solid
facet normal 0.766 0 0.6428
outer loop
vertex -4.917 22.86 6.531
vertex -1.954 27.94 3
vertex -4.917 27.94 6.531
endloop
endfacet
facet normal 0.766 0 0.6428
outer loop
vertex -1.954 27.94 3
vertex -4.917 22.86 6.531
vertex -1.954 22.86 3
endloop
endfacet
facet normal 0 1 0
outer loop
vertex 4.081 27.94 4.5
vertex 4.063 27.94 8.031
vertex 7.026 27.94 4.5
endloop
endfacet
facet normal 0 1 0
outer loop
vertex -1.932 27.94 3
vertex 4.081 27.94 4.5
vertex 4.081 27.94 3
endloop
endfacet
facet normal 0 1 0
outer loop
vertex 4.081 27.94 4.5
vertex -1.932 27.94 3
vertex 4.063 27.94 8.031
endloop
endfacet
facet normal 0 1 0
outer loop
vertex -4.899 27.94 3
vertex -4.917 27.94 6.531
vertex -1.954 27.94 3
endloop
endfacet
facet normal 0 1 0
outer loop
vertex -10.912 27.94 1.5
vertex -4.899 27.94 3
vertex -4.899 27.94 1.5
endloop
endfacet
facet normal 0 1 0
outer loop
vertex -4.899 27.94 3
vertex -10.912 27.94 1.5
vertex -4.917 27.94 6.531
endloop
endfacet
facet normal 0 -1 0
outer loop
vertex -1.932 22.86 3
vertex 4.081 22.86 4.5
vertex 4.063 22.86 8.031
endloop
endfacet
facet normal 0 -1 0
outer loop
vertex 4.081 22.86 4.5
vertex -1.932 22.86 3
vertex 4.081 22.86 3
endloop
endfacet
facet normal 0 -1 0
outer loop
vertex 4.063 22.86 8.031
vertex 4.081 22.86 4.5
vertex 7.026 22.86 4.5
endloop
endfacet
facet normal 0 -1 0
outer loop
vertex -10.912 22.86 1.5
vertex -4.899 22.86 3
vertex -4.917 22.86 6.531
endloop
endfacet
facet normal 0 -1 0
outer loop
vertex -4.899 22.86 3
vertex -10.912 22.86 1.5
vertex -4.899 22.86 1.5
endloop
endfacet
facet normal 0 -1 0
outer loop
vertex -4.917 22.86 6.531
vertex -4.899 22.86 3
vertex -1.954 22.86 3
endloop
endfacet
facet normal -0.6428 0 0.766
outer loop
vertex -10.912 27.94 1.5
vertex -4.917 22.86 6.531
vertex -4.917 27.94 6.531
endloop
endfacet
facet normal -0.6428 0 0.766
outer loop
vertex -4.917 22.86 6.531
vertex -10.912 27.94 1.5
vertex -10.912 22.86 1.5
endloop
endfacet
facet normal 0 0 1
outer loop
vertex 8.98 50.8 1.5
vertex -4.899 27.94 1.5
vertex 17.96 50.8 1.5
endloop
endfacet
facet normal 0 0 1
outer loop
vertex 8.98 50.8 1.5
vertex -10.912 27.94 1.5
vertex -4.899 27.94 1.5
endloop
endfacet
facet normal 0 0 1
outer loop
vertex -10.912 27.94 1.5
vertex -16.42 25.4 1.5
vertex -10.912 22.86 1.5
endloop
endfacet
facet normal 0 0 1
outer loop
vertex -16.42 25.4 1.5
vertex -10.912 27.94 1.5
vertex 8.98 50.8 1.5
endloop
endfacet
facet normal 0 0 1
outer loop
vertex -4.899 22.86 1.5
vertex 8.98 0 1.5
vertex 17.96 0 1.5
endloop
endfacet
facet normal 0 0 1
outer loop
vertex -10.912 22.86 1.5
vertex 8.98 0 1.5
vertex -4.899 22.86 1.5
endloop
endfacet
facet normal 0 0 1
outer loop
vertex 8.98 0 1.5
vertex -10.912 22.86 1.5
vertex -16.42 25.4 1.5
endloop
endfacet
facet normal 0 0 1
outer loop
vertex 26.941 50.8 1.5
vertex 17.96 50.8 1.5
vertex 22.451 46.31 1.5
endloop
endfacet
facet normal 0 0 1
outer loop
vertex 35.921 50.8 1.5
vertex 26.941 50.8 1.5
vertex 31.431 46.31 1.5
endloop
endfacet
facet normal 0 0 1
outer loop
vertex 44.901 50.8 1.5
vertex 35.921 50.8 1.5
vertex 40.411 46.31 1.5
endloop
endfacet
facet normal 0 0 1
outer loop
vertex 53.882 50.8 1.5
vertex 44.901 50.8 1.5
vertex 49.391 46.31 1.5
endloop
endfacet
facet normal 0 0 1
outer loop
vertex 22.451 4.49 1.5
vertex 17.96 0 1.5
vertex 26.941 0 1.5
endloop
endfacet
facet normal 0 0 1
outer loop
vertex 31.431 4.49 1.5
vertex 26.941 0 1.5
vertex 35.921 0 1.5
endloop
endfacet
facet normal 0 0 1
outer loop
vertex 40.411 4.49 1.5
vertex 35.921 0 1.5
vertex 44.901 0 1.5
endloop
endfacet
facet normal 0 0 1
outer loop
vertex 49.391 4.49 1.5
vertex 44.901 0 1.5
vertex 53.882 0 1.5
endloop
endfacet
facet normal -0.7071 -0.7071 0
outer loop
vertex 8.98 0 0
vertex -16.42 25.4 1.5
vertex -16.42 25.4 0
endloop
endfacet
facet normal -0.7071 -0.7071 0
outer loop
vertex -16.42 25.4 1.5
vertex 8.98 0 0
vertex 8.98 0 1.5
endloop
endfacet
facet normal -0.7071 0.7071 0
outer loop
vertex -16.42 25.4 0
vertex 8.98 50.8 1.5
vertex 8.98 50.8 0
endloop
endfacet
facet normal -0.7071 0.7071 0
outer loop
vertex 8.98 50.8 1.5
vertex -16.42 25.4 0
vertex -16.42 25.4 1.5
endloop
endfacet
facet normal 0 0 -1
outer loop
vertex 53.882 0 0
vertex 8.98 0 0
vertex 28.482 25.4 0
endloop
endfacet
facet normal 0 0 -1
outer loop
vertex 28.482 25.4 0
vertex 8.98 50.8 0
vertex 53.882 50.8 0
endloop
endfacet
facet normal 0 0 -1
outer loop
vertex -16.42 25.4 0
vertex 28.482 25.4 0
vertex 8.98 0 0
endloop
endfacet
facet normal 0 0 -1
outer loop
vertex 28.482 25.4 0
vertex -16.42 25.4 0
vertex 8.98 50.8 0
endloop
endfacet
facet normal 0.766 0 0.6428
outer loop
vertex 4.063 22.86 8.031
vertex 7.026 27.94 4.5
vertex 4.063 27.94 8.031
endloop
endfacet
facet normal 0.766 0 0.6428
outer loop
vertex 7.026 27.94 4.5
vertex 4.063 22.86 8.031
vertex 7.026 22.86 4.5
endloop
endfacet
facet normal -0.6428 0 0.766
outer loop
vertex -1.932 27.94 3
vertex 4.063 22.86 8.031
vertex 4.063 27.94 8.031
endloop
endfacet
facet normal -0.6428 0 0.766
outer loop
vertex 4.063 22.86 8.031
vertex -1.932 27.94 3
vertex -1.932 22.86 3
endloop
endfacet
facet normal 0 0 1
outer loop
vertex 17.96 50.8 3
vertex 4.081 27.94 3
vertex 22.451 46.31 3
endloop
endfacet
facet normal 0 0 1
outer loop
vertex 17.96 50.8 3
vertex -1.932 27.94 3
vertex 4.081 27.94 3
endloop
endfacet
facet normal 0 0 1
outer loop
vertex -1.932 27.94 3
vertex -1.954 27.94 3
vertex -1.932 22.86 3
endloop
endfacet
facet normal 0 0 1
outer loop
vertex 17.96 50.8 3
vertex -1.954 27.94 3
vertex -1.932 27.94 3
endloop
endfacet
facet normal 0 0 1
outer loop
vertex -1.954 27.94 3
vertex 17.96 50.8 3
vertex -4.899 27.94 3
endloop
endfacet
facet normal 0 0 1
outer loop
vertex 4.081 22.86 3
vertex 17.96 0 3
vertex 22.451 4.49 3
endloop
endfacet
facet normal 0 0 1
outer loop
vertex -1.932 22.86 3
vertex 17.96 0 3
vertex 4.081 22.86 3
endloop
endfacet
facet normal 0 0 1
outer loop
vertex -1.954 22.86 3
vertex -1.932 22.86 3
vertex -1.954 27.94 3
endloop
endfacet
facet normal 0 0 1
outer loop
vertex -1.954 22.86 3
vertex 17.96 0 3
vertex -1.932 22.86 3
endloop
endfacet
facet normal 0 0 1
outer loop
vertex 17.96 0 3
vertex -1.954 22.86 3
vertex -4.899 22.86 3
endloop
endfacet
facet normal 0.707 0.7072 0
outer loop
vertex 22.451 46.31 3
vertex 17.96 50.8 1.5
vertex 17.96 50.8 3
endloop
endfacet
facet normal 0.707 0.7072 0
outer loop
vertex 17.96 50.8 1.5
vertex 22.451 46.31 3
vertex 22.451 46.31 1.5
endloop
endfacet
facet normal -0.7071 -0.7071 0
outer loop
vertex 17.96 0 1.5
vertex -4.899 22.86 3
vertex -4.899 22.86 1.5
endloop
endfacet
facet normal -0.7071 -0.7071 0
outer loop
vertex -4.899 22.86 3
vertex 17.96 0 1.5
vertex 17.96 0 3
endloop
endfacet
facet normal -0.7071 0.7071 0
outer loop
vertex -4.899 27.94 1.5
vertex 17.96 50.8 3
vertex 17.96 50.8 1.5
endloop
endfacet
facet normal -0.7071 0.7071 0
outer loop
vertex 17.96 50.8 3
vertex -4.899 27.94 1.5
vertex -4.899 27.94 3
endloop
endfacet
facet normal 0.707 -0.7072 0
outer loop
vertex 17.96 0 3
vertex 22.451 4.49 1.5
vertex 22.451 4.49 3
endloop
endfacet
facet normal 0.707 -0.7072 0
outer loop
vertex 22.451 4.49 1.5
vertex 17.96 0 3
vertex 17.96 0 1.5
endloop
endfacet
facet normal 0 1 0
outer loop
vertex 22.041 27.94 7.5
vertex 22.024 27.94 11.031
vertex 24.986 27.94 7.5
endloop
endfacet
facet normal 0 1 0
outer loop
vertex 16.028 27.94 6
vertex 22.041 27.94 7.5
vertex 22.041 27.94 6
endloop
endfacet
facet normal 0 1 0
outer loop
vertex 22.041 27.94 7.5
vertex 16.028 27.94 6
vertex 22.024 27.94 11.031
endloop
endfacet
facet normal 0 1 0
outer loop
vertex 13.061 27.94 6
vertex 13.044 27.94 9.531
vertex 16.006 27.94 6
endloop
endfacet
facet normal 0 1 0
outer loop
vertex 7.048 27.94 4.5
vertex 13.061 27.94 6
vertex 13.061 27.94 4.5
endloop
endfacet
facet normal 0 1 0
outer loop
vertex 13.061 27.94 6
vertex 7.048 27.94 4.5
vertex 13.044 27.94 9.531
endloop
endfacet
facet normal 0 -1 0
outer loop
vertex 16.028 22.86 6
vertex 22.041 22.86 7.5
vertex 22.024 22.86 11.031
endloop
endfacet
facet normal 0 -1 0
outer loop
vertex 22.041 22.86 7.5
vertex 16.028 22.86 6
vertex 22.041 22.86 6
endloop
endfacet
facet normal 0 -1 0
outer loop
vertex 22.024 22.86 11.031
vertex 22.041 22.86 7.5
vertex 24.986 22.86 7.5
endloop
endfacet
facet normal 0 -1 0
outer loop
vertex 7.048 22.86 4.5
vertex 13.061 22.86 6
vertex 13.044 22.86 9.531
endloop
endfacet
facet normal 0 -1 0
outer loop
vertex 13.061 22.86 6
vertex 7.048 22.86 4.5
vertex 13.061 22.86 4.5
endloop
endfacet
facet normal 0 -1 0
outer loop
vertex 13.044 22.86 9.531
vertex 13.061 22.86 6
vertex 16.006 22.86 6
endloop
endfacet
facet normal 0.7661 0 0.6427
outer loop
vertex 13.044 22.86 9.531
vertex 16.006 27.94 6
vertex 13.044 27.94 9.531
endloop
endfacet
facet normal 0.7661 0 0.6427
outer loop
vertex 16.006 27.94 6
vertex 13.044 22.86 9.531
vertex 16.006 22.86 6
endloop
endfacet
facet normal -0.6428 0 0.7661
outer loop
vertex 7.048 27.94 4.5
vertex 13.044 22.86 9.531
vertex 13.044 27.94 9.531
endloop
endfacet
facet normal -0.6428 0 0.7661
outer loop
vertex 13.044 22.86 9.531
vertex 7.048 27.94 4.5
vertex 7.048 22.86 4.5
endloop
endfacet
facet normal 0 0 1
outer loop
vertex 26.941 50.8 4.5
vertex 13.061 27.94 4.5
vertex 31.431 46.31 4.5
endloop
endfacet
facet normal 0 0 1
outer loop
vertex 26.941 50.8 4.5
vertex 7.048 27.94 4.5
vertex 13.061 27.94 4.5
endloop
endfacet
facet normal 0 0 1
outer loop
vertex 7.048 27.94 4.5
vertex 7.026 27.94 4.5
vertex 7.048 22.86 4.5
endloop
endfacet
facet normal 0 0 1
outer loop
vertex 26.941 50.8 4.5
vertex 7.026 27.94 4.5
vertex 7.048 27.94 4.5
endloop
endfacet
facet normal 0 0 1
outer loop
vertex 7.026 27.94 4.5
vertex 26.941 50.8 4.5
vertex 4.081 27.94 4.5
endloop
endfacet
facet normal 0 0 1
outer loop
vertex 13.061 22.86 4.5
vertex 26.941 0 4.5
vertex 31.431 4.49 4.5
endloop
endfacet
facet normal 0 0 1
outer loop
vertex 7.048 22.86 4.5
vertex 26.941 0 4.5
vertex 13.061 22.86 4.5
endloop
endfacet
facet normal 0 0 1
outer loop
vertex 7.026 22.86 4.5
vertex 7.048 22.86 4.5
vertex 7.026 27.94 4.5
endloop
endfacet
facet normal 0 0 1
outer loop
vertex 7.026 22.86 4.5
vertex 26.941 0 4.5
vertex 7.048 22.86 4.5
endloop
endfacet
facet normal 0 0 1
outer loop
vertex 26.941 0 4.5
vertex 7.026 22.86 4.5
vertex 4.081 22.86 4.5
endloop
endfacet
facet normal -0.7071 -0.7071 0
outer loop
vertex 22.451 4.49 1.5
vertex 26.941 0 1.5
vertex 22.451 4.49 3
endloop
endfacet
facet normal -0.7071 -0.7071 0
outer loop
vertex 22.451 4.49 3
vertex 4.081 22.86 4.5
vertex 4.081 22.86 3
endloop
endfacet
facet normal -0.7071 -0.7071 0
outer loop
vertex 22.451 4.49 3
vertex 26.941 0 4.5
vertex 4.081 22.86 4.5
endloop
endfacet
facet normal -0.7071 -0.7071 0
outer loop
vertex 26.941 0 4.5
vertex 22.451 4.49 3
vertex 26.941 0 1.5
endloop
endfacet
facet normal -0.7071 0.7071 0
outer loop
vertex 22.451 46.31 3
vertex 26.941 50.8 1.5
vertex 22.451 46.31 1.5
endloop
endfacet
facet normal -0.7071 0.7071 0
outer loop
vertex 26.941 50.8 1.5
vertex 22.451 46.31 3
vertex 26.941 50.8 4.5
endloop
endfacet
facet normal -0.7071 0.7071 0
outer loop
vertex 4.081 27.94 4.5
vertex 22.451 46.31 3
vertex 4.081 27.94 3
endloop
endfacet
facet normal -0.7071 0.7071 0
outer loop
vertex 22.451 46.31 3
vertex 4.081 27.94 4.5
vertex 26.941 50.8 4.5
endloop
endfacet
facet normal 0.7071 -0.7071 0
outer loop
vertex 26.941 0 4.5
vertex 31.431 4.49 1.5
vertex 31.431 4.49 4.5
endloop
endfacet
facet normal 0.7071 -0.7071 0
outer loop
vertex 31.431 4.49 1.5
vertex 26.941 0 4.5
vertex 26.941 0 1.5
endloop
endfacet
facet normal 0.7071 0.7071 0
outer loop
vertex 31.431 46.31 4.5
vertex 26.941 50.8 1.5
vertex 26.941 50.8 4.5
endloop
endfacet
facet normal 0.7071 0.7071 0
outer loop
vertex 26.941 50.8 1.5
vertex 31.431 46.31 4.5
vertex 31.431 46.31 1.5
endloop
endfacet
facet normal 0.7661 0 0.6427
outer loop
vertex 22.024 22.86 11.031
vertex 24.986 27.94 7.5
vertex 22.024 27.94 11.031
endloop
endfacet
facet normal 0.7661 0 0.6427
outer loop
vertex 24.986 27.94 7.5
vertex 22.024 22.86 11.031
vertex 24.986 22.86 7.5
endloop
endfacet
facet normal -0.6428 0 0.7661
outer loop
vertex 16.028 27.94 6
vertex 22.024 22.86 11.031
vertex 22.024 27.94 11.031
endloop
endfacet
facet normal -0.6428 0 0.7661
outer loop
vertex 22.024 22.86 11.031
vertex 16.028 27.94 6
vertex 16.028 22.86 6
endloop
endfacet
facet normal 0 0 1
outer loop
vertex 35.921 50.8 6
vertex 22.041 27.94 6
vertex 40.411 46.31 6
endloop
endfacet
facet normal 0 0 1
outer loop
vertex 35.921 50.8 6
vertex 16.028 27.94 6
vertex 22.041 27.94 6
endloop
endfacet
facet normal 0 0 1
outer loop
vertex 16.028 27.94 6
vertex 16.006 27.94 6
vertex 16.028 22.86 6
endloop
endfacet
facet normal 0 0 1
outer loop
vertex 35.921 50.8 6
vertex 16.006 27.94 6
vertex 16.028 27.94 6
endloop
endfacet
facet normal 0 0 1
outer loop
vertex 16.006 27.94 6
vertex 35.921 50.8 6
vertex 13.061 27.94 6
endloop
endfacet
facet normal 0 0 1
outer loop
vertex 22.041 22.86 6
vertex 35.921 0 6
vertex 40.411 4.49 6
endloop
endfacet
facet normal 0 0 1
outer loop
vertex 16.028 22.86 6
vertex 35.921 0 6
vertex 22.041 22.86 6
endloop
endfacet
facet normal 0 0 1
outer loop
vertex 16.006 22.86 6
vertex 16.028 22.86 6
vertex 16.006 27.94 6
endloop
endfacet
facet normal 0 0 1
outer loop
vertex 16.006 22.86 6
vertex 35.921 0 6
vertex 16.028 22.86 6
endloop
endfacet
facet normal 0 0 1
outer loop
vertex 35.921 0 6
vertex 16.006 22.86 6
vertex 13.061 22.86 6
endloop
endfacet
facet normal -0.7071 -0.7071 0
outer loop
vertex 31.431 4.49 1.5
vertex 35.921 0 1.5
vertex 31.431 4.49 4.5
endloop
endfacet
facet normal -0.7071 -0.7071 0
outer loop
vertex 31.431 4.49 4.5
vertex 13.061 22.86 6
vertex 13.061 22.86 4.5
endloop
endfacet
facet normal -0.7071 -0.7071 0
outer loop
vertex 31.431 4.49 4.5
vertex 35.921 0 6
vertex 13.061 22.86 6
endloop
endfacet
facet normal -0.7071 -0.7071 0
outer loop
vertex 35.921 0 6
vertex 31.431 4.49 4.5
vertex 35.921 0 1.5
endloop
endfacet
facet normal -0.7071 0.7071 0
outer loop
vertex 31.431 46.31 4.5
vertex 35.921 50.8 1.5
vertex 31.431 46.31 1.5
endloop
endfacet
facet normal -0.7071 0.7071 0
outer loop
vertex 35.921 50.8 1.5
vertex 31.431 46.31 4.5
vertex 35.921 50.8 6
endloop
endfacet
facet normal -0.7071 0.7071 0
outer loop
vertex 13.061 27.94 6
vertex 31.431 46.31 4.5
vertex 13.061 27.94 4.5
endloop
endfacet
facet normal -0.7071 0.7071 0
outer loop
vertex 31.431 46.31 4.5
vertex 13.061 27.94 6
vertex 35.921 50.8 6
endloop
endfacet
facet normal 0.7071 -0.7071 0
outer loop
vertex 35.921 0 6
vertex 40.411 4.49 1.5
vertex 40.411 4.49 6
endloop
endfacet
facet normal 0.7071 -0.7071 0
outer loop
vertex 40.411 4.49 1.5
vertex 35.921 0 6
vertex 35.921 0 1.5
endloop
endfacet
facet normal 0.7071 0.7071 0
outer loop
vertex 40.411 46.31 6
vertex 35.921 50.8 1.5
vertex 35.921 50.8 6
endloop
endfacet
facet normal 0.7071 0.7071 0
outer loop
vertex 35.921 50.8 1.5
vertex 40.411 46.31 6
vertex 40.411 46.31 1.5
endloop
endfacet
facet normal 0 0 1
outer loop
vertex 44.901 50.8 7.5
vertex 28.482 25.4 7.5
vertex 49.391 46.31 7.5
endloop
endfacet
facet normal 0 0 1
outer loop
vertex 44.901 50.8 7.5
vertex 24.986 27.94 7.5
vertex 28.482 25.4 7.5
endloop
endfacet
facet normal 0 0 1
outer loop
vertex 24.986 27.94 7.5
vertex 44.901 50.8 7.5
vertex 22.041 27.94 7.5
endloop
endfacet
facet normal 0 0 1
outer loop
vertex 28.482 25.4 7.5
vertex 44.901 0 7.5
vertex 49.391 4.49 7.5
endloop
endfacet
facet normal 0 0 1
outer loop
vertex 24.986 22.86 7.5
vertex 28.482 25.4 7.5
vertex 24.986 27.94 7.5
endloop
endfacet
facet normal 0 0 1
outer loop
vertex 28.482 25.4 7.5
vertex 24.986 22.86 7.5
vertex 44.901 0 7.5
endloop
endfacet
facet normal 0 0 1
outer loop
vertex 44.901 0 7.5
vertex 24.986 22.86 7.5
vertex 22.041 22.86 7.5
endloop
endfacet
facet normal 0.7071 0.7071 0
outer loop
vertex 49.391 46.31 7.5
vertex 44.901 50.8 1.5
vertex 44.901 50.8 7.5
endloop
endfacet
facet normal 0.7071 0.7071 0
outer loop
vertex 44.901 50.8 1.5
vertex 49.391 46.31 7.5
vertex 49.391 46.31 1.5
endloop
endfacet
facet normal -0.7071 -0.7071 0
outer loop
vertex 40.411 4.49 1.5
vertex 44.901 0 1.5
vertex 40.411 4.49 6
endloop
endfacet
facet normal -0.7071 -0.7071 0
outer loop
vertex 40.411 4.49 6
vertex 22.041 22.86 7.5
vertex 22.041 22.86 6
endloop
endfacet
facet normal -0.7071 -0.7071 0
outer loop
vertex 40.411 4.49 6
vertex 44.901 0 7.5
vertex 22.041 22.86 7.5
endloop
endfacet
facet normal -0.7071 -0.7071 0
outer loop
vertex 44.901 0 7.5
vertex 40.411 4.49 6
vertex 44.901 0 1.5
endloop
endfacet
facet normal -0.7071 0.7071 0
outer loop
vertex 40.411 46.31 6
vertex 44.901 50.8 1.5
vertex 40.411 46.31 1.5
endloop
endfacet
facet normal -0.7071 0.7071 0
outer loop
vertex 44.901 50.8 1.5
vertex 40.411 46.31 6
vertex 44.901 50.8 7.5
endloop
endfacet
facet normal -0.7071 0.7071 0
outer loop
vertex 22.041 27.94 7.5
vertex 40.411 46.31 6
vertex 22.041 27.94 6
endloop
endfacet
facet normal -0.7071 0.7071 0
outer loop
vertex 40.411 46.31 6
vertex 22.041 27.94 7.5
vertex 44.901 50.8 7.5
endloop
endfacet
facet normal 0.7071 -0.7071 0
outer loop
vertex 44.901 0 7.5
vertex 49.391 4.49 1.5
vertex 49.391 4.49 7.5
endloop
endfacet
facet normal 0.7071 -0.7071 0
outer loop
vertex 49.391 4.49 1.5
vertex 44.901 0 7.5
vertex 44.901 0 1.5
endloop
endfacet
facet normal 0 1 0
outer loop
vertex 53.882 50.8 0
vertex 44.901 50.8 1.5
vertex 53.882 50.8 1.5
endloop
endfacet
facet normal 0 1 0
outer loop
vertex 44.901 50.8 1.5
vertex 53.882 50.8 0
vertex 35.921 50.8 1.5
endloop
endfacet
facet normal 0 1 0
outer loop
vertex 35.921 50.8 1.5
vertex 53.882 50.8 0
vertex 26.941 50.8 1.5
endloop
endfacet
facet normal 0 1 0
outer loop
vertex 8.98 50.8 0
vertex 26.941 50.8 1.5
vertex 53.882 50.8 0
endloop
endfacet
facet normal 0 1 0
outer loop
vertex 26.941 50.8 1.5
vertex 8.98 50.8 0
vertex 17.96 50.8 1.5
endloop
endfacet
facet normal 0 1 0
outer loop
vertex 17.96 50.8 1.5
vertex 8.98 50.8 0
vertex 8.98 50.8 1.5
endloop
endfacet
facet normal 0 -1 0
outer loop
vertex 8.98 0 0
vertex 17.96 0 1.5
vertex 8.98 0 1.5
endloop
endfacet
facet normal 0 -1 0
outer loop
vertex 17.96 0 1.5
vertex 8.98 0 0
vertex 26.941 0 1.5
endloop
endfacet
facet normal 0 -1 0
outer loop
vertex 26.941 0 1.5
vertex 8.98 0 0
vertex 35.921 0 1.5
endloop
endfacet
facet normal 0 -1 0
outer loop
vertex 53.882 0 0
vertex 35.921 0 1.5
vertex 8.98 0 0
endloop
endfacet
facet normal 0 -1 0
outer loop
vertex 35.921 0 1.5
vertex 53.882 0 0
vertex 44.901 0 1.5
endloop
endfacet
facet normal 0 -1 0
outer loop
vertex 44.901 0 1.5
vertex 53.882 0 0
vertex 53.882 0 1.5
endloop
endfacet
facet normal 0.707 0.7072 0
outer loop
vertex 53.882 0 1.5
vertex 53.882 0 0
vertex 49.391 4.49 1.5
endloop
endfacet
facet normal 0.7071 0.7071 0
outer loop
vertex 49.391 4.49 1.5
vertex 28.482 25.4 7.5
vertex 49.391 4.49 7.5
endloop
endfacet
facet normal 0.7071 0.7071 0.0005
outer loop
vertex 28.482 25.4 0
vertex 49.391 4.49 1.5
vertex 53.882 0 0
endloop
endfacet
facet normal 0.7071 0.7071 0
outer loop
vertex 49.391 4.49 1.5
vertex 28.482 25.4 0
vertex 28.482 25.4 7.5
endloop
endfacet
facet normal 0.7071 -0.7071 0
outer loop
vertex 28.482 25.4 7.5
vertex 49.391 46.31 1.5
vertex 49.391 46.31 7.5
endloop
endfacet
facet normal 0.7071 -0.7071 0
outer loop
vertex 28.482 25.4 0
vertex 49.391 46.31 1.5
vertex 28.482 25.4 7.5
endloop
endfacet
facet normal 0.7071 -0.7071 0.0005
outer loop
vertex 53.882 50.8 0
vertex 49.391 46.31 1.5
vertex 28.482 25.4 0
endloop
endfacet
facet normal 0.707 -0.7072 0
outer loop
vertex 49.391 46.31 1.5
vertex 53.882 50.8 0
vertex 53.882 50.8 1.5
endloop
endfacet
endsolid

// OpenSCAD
$tileH = 50.8;
$m = $tileH / 10;
$c = sqrt(pow($tileH, 2)/2);
$d = 1.5;
$fn = 3;
$links = 5;

difference() {
union() {
translate([$c/4, 0, 0]) {
    cube([$tileH*$links/4, $tileH, $d]);
}
for (i = [0:$links]) {
     translate([i * $c/4, 0, 0]) {
        rotate([0, 0, 45]) {
            cube([$c, $c, $d * i]);
        }
        if (i < $links-1) {
            translate([-$tileH/4, $tileH/2-$m/2, $d*i]) {
         rotate([0, 50, 0]) {
            cube([$m, $m, $m *2]);
        }
      }
  }
     }
}

}

translate([($links+1) * $c/4, 0, -2]) {
        rotate([0, 0, 45]) {
            cube([$c, $c, $d * ($links+1)*2]);
        }
     }
translate([($links+1) * $c/4, -$c, -2]) {
            cube([$c*3, $c*3, $d * 25]);
     }
translate([-$tileH, 0, -$d*3]) {
    cube([$tileH*$links/2, $tileH, $d*3]);
}
}

 
